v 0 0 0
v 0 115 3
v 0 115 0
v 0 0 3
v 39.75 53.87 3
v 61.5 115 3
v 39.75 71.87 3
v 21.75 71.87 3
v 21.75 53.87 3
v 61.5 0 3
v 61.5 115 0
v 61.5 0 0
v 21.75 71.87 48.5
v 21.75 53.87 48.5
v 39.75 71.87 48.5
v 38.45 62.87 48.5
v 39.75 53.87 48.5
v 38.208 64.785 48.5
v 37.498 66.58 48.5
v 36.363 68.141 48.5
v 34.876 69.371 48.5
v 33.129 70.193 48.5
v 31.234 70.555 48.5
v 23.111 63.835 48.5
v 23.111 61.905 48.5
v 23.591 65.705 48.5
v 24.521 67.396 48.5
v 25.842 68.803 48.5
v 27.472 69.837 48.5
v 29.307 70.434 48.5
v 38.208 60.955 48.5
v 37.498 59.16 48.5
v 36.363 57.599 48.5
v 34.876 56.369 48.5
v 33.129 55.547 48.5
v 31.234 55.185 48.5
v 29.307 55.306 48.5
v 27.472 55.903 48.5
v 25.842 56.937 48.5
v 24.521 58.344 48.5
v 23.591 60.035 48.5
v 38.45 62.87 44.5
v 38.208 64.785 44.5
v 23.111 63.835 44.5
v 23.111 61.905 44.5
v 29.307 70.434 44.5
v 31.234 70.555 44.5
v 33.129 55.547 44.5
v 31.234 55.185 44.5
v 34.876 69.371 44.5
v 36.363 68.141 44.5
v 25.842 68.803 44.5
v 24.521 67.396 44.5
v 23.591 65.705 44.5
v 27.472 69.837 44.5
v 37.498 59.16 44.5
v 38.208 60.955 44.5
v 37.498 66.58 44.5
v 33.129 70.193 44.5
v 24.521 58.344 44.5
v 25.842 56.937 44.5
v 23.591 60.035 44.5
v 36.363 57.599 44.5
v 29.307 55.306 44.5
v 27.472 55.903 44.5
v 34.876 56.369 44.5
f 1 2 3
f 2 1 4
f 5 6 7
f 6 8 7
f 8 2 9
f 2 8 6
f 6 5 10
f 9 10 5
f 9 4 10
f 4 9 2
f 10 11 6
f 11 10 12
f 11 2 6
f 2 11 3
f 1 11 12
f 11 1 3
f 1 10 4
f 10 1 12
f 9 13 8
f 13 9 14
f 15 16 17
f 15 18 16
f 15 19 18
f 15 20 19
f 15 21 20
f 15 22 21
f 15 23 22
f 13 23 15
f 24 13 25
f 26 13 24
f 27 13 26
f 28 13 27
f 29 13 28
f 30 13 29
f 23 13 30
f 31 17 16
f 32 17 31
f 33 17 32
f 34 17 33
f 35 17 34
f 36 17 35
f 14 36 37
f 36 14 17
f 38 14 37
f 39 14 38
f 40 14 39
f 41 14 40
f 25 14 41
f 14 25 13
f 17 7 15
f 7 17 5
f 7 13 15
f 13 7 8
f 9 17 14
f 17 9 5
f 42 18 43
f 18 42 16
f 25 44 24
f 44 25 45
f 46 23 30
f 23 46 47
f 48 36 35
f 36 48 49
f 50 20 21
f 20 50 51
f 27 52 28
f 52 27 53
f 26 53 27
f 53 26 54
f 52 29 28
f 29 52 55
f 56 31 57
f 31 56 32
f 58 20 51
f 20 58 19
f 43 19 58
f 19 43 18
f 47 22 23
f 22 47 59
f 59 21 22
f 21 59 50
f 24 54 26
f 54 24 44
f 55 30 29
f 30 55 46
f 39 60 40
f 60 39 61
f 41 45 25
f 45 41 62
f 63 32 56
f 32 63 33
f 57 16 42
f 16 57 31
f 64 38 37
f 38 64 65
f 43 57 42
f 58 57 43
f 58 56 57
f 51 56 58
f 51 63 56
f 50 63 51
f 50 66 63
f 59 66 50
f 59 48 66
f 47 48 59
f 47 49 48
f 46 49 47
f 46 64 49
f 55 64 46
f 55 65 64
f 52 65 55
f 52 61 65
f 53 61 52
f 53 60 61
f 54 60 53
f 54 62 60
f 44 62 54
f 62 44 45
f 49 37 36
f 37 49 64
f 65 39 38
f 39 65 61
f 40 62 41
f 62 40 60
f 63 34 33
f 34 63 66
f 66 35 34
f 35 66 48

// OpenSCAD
length = 61.5;
width = 115;
height = 3;

//Based on magnet size:
pillarSideLength = 18;
pillarSideOffset = .5;

magnetBaseInnerDiameter = 15.4;
magnetHeight = 4.0;

//inox guard x 6, 47.87 x 31.97, base 29.36
//bandit guard x 6, 36.67 x 27.75, base 24.43
//city guard x 6, 38.45 x 24.02, base 21.30
//single token 2.0

magnetOffset = 49.37;


spaceBetweenCircles = 2;
wallThickness = spaceBetweenCircles;
pillarHeight = 15 * 3 + .5 + height;

difference() {
union(){
    cube([length, width, height]);


//----------------------------------


            
//---------------------------------------------------------------------
    
          

//----------------------------------------
   
    translate([length/2 - ((pillarSideLength)/2), magnetOffset + wallThickness * 2 + pillarSideOffset, 0])
        cube([pillarSideLength, pillarSideLength, pillarHeight]);
        

}
    translate([length/2,  magnetOffset + wallThickness * 2 + magnetBaseInnerDiameter/2 + (pillarSideLength -magnetBaseInnerDiameter )/2 + pillarSideOffset, pillarHeight - magnetHeight])
        cylinder(magnetHeight, d=magnetBaseInnerDiameter);

}
